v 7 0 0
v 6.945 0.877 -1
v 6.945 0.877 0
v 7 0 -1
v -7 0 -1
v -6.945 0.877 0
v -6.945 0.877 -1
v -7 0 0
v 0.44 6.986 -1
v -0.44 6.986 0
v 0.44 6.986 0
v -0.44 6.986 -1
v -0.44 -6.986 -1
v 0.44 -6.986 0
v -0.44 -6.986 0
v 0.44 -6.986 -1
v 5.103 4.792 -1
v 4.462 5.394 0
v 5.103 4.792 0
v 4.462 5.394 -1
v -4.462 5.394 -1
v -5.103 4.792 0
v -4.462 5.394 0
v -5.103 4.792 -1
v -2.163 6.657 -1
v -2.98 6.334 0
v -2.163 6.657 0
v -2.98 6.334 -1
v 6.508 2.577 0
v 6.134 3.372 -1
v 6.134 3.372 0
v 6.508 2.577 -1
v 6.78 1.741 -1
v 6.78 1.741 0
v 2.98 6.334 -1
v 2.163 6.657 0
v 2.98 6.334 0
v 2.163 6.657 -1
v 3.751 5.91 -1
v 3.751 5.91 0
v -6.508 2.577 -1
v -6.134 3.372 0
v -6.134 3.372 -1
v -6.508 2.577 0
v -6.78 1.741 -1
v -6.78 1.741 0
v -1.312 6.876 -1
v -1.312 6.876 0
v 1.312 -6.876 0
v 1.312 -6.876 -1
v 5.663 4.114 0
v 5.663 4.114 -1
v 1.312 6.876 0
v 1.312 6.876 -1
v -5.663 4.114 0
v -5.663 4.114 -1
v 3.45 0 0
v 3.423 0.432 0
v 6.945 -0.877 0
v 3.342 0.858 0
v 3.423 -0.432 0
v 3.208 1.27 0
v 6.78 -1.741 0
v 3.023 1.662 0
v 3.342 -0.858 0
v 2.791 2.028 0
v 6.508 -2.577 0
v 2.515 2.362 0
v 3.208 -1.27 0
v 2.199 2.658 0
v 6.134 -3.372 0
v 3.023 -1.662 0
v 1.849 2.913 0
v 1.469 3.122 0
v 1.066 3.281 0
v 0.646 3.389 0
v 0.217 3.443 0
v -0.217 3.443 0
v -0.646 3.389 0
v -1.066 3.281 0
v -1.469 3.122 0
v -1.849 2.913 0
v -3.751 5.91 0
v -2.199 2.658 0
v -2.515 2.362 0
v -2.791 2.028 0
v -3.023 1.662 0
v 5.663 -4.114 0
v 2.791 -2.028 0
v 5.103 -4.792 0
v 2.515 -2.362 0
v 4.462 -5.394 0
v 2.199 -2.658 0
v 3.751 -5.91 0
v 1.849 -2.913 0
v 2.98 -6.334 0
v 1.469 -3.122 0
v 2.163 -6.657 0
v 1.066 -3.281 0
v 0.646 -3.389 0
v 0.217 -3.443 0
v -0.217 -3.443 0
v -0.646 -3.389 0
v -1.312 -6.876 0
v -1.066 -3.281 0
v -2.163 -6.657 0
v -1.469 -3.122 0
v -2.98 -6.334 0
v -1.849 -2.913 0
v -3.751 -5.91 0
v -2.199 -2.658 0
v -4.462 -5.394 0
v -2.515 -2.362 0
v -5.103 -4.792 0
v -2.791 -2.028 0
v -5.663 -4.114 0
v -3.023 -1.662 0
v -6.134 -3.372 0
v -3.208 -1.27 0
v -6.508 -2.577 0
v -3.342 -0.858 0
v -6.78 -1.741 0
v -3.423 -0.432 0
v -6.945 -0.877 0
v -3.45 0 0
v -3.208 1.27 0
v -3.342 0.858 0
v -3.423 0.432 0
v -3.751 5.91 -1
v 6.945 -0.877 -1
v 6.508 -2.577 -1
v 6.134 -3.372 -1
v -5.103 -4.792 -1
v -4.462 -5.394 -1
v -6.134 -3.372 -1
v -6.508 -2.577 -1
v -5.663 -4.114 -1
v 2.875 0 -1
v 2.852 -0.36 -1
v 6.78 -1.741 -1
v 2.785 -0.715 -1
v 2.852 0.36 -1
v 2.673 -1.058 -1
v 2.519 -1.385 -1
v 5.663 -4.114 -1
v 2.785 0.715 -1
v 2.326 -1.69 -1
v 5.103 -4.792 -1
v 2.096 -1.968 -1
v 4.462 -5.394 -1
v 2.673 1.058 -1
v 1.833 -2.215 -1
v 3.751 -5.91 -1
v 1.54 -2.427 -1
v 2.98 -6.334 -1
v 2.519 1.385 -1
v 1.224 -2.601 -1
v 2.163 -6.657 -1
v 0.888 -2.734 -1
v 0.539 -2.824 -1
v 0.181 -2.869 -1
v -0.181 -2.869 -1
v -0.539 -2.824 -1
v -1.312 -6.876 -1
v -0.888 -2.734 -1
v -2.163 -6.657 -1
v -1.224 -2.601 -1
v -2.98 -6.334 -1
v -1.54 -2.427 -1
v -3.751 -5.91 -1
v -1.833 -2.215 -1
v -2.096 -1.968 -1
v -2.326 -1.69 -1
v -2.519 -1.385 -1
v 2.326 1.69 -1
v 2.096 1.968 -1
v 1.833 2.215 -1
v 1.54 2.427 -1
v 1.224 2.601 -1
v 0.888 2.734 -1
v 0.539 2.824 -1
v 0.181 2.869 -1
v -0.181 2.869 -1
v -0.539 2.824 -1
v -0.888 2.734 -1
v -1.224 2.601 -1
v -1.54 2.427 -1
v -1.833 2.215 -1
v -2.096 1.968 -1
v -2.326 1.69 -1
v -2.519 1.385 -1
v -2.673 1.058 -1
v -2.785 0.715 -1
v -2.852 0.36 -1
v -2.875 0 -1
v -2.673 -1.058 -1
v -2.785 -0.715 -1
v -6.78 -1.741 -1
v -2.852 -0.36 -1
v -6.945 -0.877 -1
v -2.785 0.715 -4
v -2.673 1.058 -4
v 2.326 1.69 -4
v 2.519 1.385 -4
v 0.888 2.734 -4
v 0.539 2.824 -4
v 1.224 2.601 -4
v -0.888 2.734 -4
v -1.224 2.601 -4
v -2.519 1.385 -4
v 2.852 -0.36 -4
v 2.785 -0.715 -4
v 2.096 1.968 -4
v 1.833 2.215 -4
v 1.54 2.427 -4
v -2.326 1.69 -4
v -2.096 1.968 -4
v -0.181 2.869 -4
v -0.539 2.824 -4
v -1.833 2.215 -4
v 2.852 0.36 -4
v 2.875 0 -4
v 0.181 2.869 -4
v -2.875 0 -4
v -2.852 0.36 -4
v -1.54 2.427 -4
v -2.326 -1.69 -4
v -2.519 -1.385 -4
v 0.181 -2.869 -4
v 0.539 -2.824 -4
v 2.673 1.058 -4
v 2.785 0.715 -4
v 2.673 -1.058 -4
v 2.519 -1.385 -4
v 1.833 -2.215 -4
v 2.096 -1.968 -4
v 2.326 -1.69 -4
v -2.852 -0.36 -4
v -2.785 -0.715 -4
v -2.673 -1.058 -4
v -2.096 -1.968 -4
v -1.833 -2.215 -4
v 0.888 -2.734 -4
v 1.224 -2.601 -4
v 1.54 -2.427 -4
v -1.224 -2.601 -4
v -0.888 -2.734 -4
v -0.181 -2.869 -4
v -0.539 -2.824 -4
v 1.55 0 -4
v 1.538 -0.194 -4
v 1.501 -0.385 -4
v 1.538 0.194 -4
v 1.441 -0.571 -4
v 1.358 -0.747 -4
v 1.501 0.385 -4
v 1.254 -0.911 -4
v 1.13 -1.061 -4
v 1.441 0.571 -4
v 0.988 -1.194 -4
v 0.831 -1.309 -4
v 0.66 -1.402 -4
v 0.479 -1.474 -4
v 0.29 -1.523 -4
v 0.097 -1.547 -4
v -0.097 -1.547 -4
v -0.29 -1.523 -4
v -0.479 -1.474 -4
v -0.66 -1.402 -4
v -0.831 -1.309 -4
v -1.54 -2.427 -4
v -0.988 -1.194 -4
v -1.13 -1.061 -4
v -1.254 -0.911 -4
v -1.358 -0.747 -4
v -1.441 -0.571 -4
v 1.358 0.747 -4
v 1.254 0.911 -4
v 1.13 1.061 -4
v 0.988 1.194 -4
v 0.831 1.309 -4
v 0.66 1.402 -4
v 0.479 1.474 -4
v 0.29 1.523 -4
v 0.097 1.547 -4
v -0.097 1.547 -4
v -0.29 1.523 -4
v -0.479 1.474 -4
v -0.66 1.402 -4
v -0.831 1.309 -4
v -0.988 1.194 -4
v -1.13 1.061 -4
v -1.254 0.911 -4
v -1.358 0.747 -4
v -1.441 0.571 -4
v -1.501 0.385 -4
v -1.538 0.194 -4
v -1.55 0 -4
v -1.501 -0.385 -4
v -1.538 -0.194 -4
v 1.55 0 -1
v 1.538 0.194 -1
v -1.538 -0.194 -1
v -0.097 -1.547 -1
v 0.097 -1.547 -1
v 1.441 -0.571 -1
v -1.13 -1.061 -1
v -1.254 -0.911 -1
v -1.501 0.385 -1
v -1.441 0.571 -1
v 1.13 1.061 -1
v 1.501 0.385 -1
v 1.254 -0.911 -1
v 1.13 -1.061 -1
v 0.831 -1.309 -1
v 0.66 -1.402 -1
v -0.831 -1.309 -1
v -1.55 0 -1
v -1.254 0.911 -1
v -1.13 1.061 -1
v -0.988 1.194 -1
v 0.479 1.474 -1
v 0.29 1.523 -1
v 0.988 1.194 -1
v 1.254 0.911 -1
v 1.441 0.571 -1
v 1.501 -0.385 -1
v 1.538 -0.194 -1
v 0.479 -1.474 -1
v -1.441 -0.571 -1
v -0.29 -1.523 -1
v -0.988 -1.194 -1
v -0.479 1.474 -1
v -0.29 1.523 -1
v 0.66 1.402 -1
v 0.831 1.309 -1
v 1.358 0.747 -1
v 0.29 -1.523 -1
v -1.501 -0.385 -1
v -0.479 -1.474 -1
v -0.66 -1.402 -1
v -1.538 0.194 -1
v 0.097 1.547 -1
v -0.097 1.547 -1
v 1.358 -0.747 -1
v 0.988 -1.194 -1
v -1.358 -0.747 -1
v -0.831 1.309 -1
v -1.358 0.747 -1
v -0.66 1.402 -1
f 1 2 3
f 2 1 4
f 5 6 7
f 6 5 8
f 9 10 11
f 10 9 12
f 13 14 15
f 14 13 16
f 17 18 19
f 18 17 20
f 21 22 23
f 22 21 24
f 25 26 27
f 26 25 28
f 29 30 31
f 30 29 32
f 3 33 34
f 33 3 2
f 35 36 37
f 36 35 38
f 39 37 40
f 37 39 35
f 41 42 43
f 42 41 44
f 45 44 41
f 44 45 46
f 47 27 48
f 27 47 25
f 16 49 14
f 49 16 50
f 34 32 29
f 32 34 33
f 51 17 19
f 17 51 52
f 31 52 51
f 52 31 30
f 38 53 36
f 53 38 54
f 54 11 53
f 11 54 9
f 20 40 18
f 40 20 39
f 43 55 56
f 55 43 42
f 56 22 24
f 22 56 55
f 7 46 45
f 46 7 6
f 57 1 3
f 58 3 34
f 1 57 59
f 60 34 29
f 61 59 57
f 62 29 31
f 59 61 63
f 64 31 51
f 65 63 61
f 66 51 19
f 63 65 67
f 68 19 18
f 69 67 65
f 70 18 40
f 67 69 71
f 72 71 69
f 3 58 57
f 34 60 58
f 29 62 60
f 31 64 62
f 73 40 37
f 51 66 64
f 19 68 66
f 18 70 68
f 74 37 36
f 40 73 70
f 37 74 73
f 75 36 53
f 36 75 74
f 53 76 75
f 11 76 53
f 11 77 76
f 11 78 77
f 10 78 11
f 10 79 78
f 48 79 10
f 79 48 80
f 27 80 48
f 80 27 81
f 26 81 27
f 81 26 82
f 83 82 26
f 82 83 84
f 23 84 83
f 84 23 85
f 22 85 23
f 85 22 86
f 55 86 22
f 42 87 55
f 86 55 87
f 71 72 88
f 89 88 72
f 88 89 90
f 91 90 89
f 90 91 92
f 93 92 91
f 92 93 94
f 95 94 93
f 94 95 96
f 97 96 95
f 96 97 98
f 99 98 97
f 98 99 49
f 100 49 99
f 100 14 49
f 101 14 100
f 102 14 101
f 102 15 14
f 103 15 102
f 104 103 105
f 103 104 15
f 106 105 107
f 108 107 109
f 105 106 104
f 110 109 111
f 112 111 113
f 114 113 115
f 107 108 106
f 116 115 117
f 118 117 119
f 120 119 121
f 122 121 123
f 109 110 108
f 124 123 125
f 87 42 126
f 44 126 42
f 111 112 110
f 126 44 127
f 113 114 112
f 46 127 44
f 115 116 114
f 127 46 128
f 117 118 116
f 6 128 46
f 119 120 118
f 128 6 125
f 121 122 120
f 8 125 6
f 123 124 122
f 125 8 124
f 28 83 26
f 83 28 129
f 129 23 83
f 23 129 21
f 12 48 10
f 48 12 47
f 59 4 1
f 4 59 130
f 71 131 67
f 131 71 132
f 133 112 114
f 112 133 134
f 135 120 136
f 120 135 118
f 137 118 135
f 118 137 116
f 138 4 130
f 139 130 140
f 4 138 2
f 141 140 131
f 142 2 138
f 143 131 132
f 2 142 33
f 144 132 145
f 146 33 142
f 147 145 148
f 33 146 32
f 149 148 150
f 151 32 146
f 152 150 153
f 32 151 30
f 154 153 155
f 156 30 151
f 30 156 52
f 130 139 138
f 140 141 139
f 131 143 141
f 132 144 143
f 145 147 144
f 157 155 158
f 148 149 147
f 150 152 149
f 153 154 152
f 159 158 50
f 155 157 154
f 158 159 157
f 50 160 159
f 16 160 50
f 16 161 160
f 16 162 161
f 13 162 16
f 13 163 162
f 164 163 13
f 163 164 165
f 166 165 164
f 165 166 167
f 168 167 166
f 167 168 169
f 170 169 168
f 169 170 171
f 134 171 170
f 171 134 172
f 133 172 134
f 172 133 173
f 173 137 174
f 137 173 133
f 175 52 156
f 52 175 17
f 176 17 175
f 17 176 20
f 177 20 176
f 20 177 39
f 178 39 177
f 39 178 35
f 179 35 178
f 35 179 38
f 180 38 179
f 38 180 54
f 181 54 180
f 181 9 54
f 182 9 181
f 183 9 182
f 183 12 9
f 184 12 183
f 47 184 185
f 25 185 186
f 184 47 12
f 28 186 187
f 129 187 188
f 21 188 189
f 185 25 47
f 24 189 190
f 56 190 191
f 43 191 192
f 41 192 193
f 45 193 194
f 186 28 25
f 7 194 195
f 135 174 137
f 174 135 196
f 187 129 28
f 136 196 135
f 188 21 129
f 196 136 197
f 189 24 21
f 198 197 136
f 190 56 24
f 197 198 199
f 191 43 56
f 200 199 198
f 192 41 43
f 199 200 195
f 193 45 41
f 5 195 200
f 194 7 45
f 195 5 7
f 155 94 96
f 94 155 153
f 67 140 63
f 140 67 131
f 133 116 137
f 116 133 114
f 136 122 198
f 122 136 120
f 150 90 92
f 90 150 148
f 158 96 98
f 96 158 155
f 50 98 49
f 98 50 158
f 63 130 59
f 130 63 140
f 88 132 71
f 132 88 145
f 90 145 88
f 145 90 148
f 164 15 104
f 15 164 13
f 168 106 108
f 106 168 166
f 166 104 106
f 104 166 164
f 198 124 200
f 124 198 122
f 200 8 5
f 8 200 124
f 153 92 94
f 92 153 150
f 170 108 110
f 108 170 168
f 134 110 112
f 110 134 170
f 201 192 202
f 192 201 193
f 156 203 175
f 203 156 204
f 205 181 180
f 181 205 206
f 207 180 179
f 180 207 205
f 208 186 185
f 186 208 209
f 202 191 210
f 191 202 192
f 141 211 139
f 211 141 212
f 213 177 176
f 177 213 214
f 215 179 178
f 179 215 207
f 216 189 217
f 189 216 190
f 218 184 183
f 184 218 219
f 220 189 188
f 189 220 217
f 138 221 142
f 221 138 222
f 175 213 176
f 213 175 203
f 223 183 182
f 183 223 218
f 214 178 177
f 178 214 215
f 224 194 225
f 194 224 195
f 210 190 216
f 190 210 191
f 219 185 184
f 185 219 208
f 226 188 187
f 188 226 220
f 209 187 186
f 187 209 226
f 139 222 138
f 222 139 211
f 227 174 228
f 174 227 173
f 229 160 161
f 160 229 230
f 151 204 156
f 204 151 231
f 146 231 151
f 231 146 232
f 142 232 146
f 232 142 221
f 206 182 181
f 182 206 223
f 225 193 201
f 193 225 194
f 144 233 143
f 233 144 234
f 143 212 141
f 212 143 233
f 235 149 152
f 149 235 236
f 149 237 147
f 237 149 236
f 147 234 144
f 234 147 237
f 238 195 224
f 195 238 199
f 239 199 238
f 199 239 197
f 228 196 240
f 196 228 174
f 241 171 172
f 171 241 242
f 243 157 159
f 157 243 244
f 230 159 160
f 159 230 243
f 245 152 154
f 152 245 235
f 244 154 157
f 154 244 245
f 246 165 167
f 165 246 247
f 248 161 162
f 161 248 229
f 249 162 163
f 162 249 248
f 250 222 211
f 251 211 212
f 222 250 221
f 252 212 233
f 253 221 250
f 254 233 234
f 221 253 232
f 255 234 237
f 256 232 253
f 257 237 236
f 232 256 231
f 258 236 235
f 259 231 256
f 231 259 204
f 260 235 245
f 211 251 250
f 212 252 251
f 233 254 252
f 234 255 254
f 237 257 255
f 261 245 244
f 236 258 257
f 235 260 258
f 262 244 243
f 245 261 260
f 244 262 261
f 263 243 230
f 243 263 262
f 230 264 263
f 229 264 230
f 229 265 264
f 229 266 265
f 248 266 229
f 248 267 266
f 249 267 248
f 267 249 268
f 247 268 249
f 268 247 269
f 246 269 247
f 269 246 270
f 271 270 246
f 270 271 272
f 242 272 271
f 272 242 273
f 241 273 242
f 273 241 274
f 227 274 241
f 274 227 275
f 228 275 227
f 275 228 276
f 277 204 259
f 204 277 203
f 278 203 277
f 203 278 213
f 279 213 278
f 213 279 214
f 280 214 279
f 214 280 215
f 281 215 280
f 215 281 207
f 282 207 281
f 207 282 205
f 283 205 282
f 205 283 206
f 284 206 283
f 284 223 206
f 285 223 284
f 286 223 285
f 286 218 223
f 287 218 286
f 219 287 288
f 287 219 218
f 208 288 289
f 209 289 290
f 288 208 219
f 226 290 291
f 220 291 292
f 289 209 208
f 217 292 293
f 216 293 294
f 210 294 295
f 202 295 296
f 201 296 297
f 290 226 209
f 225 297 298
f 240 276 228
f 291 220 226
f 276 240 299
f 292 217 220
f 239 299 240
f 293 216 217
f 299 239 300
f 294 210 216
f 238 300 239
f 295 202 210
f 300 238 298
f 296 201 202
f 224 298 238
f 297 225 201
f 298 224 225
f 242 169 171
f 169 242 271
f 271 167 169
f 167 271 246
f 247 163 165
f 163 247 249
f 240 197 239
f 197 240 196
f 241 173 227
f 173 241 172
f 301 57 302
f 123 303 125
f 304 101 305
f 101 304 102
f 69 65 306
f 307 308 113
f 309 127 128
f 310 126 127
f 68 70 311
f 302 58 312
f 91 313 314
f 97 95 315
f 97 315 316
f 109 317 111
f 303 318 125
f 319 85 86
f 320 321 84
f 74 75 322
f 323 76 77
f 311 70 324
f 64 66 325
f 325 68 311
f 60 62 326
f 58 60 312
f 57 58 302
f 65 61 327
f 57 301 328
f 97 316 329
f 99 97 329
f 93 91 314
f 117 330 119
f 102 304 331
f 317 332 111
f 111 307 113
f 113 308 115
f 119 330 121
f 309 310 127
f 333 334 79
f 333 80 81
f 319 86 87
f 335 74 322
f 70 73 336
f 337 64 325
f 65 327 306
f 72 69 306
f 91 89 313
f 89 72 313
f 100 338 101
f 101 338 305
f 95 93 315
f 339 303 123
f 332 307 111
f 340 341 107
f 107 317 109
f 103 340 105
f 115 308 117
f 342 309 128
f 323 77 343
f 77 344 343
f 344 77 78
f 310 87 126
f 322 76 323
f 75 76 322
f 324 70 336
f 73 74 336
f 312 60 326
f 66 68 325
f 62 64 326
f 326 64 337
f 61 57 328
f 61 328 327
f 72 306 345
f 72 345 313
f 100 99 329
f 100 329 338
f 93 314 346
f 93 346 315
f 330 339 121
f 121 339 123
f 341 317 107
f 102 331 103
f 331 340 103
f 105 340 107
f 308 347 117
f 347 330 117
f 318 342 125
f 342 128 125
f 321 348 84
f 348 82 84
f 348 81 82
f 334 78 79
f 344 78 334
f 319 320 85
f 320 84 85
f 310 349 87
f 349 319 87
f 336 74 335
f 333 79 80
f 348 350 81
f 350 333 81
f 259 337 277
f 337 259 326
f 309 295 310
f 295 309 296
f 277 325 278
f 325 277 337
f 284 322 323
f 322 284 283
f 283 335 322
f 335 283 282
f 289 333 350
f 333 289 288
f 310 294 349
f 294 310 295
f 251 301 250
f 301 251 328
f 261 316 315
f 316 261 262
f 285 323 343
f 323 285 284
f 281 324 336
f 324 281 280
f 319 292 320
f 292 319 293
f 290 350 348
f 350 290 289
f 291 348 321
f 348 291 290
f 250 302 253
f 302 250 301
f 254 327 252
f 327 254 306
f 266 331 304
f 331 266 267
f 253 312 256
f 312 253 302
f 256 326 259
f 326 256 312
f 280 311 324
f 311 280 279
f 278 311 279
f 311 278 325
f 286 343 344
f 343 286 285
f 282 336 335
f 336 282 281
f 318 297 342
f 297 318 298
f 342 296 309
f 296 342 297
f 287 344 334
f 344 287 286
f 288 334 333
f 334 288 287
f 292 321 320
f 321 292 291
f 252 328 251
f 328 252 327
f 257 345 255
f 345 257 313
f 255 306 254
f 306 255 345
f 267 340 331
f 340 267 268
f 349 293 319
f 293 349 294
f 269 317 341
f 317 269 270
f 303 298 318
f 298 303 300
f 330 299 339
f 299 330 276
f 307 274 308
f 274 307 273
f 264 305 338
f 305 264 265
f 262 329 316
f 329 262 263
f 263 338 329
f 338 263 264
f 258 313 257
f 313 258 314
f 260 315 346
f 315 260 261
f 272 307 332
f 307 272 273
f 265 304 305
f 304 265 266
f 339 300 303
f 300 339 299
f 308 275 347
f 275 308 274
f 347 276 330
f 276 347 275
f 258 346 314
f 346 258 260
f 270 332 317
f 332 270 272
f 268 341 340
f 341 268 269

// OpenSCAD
$fn = 50;

difference() {
	union() {
		translate(v = [0, 0, -1.0]) {
			cylinder(h = 1.0, r = 7.0);
		}
		#translate(v = [0, 0, -4.0]) {
			cylinder(h = 4.0, r = 2.875);
		}
	}
	union() {
		translate(v = [0, 0, 0]) {
			rotate(a = [0, 0, 0]) {
				difference() {
					union() {
						translate(v = [0, 0, -4.0]) {
							cylinder(h = 4.0, r = 1.25);
						}
						translate(v = [0, 0, -1.0]) {
							cylinder(h = 1.0, r1 = 1.55, r2 = 3.45);
						}
						translate(v = [0, 0, -4.0]) {
							cylinder(h = 4.0, r = 1.55);
						}
						translate(v = [0, 0, -4.0]) {
							cylinder(h = 4.0, r = 1.25);
						}
					}
					union();
				}
			}
		}
	}
}
